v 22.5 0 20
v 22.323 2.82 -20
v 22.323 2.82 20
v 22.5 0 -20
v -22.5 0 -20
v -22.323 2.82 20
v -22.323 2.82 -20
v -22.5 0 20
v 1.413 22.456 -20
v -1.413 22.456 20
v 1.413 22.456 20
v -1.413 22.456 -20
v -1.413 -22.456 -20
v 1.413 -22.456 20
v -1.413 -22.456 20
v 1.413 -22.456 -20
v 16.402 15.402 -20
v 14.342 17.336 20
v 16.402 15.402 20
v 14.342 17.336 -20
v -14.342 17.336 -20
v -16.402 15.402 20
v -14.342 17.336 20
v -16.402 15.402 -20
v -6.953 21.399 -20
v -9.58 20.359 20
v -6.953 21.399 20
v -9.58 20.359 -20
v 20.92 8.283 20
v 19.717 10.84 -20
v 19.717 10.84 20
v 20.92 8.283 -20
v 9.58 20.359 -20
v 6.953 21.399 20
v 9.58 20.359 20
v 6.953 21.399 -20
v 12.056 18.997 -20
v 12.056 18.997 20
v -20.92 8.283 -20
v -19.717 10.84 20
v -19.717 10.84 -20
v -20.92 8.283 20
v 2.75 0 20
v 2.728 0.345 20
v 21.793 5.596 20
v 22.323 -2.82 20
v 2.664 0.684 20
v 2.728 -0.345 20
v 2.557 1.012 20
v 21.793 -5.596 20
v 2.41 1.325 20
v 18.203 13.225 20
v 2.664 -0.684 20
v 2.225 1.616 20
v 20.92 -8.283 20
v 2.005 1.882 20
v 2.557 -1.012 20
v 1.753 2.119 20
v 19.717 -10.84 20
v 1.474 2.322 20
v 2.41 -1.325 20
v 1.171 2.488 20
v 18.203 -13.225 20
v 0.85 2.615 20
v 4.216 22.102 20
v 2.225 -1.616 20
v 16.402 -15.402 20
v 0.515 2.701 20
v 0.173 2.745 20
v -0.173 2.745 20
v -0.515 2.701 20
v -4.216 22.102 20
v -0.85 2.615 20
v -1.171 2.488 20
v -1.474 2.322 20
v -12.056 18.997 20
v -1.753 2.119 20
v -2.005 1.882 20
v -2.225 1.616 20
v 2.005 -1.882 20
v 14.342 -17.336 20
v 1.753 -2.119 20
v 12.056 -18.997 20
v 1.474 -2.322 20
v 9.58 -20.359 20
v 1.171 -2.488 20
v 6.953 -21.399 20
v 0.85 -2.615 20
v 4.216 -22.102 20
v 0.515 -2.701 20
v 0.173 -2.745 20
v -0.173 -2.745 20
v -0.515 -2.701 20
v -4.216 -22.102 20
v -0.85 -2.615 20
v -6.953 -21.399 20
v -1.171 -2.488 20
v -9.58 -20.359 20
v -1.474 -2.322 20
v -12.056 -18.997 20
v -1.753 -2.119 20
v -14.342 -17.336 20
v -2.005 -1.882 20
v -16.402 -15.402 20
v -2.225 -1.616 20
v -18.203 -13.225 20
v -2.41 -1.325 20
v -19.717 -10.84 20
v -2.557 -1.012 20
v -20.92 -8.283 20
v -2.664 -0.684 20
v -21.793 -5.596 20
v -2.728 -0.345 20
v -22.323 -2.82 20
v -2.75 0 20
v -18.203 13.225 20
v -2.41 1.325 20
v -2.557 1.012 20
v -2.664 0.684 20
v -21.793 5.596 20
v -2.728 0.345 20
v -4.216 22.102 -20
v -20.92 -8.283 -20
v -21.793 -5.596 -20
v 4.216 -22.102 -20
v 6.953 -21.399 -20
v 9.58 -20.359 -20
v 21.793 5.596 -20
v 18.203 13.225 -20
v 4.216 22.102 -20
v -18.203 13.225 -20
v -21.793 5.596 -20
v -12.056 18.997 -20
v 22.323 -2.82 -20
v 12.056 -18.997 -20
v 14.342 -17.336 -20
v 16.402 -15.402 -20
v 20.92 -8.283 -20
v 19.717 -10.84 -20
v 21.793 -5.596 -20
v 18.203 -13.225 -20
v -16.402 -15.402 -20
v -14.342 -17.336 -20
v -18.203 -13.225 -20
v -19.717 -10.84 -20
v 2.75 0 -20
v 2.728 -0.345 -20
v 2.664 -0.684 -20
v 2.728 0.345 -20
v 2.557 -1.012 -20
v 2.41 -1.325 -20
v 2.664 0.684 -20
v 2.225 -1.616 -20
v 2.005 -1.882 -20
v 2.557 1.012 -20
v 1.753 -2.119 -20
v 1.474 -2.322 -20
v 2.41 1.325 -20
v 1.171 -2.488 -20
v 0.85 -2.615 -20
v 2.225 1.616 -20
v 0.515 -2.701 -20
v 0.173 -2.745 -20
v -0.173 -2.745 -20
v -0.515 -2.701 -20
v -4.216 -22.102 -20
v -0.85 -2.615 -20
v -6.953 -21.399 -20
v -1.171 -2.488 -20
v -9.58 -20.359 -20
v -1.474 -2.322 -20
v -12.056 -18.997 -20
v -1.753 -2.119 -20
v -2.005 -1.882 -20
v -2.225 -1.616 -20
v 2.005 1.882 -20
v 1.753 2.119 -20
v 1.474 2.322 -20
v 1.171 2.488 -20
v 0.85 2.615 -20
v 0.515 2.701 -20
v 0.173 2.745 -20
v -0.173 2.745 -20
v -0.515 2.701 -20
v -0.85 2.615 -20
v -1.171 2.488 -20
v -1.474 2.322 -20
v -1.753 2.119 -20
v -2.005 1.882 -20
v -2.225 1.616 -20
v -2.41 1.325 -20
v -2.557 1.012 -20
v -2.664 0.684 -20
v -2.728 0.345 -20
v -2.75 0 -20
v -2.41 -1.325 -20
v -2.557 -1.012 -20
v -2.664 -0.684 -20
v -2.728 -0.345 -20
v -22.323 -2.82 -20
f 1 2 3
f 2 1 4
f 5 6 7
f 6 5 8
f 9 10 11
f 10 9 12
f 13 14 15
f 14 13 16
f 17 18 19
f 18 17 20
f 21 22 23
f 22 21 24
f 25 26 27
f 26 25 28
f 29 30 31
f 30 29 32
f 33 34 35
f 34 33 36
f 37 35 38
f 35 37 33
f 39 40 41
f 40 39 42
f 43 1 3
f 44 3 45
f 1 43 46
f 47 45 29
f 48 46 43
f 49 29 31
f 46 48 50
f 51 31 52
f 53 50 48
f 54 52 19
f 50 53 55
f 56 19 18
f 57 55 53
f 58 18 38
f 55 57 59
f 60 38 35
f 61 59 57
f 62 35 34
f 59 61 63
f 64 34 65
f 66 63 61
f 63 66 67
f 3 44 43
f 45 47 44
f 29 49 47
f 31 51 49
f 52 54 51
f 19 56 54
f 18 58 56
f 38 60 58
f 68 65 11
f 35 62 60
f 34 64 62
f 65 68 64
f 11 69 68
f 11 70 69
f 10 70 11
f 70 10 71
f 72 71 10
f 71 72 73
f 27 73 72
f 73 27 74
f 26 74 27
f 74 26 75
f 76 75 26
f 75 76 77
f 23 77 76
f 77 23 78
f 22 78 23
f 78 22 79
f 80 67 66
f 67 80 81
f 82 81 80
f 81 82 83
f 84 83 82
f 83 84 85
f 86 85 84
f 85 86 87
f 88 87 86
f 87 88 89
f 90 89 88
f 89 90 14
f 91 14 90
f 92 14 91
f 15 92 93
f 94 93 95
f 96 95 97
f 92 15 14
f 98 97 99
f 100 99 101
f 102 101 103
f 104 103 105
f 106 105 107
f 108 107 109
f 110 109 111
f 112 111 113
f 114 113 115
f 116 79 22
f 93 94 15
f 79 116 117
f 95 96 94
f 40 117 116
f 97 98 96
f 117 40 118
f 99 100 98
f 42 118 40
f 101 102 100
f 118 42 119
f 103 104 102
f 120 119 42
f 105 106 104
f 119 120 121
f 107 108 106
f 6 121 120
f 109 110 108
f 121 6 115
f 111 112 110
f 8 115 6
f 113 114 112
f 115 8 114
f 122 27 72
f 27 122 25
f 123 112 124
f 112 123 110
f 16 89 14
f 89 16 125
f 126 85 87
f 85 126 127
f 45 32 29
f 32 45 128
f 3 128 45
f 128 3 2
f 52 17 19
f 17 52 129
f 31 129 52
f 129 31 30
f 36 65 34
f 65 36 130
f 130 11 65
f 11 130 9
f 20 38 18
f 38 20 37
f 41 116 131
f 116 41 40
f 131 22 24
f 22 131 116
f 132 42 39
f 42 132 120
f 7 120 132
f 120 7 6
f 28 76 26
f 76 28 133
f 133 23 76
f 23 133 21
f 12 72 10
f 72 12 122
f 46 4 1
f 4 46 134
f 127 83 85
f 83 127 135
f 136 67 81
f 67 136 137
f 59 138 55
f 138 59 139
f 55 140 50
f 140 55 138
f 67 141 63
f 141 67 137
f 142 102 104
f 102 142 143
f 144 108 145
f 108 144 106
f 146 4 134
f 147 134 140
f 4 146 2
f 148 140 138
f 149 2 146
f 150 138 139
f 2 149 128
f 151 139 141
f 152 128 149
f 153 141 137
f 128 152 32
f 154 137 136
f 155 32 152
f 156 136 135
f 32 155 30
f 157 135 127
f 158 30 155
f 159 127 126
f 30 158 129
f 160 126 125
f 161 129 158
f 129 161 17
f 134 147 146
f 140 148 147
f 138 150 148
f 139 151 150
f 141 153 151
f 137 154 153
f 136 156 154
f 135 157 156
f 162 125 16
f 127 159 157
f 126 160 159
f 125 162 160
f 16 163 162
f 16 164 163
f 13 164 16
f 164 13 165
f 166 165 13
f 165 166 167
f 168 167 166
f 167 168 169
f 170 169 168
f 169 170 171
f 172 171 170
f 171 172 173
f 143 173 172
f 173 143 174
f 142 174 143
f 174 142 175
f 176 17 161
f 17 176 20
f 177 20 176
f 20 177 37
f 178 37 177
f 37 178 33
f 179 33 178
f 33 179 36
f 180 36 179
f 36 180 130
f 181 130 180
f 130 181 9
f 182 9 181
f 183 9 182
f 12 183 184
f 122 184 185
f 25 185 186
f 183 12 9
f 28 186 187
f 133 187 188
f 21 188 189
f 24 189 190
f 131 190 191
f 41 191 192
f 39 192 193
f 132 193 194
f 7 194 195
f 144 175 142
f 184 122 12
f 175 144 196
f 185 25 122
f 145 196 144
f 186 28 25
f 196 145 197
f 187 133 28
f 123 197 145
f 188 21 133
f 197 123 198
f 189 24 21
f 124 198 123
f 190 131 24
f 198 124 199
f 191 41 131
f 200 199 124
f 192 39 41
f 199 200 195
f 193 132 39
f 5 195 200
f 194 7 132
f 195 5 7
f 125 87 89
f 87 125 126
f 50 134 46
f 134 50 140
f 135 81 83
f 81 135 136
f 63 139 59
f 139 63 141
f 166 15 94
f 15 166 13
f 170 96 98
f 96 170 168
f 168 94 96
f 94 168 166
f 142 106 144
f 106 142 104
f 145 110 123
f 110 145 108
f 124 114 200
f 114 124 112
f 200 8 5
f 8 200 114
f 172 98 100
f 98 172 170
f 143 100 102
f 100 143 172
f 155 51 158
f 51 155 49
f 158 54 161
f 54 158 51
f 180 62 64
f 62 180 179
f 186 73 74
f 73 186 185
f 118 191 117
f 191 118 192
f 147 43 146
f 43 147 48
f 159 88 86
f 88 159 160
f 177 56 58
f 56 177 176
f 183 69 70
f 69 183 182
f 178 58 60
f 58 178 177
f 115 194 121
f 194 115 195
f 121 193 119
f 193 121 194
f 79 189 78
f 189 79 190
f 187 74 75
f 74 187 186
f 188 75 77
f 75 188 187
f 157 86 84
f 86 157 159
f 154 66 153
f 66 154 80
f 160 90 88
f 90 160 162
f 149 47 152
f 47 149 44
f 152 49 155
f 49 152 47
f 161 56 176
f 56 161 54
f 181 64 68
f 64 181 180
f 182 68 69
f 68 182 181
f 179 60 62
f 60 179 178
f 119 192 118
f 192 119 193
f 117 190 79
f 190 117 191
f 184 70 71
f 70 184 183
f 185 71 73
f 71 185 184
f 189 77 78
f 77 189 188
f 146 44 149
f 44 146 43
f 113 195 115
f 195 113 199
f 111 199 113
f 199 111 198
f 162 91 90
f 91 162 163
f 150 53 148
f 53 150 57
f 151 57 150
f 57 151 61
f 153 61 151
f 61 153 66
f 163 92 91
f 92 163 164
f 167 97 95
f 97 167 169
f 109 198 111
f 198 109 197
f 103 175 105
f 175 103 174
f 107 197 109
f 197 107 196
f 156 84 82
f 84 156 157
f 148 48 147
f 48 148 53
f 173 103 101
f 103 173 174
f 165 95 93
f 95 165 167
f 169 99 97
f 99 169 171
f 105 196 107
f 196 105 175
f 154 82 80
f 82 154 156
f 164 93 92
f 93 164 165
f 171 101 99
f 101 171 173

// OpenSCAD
$fn = 50;


difference() {
	union() {
		translate(v = [0, 0, -20.0000000000]) {
			cylinder(h = 40, r = 22.5000000000);
		}
	}
	union() {
		translate(v = [0, 0, -100.0000000000]) {
			cylinder(h = 200, r = 2.7500000000);
		}
	}
}
